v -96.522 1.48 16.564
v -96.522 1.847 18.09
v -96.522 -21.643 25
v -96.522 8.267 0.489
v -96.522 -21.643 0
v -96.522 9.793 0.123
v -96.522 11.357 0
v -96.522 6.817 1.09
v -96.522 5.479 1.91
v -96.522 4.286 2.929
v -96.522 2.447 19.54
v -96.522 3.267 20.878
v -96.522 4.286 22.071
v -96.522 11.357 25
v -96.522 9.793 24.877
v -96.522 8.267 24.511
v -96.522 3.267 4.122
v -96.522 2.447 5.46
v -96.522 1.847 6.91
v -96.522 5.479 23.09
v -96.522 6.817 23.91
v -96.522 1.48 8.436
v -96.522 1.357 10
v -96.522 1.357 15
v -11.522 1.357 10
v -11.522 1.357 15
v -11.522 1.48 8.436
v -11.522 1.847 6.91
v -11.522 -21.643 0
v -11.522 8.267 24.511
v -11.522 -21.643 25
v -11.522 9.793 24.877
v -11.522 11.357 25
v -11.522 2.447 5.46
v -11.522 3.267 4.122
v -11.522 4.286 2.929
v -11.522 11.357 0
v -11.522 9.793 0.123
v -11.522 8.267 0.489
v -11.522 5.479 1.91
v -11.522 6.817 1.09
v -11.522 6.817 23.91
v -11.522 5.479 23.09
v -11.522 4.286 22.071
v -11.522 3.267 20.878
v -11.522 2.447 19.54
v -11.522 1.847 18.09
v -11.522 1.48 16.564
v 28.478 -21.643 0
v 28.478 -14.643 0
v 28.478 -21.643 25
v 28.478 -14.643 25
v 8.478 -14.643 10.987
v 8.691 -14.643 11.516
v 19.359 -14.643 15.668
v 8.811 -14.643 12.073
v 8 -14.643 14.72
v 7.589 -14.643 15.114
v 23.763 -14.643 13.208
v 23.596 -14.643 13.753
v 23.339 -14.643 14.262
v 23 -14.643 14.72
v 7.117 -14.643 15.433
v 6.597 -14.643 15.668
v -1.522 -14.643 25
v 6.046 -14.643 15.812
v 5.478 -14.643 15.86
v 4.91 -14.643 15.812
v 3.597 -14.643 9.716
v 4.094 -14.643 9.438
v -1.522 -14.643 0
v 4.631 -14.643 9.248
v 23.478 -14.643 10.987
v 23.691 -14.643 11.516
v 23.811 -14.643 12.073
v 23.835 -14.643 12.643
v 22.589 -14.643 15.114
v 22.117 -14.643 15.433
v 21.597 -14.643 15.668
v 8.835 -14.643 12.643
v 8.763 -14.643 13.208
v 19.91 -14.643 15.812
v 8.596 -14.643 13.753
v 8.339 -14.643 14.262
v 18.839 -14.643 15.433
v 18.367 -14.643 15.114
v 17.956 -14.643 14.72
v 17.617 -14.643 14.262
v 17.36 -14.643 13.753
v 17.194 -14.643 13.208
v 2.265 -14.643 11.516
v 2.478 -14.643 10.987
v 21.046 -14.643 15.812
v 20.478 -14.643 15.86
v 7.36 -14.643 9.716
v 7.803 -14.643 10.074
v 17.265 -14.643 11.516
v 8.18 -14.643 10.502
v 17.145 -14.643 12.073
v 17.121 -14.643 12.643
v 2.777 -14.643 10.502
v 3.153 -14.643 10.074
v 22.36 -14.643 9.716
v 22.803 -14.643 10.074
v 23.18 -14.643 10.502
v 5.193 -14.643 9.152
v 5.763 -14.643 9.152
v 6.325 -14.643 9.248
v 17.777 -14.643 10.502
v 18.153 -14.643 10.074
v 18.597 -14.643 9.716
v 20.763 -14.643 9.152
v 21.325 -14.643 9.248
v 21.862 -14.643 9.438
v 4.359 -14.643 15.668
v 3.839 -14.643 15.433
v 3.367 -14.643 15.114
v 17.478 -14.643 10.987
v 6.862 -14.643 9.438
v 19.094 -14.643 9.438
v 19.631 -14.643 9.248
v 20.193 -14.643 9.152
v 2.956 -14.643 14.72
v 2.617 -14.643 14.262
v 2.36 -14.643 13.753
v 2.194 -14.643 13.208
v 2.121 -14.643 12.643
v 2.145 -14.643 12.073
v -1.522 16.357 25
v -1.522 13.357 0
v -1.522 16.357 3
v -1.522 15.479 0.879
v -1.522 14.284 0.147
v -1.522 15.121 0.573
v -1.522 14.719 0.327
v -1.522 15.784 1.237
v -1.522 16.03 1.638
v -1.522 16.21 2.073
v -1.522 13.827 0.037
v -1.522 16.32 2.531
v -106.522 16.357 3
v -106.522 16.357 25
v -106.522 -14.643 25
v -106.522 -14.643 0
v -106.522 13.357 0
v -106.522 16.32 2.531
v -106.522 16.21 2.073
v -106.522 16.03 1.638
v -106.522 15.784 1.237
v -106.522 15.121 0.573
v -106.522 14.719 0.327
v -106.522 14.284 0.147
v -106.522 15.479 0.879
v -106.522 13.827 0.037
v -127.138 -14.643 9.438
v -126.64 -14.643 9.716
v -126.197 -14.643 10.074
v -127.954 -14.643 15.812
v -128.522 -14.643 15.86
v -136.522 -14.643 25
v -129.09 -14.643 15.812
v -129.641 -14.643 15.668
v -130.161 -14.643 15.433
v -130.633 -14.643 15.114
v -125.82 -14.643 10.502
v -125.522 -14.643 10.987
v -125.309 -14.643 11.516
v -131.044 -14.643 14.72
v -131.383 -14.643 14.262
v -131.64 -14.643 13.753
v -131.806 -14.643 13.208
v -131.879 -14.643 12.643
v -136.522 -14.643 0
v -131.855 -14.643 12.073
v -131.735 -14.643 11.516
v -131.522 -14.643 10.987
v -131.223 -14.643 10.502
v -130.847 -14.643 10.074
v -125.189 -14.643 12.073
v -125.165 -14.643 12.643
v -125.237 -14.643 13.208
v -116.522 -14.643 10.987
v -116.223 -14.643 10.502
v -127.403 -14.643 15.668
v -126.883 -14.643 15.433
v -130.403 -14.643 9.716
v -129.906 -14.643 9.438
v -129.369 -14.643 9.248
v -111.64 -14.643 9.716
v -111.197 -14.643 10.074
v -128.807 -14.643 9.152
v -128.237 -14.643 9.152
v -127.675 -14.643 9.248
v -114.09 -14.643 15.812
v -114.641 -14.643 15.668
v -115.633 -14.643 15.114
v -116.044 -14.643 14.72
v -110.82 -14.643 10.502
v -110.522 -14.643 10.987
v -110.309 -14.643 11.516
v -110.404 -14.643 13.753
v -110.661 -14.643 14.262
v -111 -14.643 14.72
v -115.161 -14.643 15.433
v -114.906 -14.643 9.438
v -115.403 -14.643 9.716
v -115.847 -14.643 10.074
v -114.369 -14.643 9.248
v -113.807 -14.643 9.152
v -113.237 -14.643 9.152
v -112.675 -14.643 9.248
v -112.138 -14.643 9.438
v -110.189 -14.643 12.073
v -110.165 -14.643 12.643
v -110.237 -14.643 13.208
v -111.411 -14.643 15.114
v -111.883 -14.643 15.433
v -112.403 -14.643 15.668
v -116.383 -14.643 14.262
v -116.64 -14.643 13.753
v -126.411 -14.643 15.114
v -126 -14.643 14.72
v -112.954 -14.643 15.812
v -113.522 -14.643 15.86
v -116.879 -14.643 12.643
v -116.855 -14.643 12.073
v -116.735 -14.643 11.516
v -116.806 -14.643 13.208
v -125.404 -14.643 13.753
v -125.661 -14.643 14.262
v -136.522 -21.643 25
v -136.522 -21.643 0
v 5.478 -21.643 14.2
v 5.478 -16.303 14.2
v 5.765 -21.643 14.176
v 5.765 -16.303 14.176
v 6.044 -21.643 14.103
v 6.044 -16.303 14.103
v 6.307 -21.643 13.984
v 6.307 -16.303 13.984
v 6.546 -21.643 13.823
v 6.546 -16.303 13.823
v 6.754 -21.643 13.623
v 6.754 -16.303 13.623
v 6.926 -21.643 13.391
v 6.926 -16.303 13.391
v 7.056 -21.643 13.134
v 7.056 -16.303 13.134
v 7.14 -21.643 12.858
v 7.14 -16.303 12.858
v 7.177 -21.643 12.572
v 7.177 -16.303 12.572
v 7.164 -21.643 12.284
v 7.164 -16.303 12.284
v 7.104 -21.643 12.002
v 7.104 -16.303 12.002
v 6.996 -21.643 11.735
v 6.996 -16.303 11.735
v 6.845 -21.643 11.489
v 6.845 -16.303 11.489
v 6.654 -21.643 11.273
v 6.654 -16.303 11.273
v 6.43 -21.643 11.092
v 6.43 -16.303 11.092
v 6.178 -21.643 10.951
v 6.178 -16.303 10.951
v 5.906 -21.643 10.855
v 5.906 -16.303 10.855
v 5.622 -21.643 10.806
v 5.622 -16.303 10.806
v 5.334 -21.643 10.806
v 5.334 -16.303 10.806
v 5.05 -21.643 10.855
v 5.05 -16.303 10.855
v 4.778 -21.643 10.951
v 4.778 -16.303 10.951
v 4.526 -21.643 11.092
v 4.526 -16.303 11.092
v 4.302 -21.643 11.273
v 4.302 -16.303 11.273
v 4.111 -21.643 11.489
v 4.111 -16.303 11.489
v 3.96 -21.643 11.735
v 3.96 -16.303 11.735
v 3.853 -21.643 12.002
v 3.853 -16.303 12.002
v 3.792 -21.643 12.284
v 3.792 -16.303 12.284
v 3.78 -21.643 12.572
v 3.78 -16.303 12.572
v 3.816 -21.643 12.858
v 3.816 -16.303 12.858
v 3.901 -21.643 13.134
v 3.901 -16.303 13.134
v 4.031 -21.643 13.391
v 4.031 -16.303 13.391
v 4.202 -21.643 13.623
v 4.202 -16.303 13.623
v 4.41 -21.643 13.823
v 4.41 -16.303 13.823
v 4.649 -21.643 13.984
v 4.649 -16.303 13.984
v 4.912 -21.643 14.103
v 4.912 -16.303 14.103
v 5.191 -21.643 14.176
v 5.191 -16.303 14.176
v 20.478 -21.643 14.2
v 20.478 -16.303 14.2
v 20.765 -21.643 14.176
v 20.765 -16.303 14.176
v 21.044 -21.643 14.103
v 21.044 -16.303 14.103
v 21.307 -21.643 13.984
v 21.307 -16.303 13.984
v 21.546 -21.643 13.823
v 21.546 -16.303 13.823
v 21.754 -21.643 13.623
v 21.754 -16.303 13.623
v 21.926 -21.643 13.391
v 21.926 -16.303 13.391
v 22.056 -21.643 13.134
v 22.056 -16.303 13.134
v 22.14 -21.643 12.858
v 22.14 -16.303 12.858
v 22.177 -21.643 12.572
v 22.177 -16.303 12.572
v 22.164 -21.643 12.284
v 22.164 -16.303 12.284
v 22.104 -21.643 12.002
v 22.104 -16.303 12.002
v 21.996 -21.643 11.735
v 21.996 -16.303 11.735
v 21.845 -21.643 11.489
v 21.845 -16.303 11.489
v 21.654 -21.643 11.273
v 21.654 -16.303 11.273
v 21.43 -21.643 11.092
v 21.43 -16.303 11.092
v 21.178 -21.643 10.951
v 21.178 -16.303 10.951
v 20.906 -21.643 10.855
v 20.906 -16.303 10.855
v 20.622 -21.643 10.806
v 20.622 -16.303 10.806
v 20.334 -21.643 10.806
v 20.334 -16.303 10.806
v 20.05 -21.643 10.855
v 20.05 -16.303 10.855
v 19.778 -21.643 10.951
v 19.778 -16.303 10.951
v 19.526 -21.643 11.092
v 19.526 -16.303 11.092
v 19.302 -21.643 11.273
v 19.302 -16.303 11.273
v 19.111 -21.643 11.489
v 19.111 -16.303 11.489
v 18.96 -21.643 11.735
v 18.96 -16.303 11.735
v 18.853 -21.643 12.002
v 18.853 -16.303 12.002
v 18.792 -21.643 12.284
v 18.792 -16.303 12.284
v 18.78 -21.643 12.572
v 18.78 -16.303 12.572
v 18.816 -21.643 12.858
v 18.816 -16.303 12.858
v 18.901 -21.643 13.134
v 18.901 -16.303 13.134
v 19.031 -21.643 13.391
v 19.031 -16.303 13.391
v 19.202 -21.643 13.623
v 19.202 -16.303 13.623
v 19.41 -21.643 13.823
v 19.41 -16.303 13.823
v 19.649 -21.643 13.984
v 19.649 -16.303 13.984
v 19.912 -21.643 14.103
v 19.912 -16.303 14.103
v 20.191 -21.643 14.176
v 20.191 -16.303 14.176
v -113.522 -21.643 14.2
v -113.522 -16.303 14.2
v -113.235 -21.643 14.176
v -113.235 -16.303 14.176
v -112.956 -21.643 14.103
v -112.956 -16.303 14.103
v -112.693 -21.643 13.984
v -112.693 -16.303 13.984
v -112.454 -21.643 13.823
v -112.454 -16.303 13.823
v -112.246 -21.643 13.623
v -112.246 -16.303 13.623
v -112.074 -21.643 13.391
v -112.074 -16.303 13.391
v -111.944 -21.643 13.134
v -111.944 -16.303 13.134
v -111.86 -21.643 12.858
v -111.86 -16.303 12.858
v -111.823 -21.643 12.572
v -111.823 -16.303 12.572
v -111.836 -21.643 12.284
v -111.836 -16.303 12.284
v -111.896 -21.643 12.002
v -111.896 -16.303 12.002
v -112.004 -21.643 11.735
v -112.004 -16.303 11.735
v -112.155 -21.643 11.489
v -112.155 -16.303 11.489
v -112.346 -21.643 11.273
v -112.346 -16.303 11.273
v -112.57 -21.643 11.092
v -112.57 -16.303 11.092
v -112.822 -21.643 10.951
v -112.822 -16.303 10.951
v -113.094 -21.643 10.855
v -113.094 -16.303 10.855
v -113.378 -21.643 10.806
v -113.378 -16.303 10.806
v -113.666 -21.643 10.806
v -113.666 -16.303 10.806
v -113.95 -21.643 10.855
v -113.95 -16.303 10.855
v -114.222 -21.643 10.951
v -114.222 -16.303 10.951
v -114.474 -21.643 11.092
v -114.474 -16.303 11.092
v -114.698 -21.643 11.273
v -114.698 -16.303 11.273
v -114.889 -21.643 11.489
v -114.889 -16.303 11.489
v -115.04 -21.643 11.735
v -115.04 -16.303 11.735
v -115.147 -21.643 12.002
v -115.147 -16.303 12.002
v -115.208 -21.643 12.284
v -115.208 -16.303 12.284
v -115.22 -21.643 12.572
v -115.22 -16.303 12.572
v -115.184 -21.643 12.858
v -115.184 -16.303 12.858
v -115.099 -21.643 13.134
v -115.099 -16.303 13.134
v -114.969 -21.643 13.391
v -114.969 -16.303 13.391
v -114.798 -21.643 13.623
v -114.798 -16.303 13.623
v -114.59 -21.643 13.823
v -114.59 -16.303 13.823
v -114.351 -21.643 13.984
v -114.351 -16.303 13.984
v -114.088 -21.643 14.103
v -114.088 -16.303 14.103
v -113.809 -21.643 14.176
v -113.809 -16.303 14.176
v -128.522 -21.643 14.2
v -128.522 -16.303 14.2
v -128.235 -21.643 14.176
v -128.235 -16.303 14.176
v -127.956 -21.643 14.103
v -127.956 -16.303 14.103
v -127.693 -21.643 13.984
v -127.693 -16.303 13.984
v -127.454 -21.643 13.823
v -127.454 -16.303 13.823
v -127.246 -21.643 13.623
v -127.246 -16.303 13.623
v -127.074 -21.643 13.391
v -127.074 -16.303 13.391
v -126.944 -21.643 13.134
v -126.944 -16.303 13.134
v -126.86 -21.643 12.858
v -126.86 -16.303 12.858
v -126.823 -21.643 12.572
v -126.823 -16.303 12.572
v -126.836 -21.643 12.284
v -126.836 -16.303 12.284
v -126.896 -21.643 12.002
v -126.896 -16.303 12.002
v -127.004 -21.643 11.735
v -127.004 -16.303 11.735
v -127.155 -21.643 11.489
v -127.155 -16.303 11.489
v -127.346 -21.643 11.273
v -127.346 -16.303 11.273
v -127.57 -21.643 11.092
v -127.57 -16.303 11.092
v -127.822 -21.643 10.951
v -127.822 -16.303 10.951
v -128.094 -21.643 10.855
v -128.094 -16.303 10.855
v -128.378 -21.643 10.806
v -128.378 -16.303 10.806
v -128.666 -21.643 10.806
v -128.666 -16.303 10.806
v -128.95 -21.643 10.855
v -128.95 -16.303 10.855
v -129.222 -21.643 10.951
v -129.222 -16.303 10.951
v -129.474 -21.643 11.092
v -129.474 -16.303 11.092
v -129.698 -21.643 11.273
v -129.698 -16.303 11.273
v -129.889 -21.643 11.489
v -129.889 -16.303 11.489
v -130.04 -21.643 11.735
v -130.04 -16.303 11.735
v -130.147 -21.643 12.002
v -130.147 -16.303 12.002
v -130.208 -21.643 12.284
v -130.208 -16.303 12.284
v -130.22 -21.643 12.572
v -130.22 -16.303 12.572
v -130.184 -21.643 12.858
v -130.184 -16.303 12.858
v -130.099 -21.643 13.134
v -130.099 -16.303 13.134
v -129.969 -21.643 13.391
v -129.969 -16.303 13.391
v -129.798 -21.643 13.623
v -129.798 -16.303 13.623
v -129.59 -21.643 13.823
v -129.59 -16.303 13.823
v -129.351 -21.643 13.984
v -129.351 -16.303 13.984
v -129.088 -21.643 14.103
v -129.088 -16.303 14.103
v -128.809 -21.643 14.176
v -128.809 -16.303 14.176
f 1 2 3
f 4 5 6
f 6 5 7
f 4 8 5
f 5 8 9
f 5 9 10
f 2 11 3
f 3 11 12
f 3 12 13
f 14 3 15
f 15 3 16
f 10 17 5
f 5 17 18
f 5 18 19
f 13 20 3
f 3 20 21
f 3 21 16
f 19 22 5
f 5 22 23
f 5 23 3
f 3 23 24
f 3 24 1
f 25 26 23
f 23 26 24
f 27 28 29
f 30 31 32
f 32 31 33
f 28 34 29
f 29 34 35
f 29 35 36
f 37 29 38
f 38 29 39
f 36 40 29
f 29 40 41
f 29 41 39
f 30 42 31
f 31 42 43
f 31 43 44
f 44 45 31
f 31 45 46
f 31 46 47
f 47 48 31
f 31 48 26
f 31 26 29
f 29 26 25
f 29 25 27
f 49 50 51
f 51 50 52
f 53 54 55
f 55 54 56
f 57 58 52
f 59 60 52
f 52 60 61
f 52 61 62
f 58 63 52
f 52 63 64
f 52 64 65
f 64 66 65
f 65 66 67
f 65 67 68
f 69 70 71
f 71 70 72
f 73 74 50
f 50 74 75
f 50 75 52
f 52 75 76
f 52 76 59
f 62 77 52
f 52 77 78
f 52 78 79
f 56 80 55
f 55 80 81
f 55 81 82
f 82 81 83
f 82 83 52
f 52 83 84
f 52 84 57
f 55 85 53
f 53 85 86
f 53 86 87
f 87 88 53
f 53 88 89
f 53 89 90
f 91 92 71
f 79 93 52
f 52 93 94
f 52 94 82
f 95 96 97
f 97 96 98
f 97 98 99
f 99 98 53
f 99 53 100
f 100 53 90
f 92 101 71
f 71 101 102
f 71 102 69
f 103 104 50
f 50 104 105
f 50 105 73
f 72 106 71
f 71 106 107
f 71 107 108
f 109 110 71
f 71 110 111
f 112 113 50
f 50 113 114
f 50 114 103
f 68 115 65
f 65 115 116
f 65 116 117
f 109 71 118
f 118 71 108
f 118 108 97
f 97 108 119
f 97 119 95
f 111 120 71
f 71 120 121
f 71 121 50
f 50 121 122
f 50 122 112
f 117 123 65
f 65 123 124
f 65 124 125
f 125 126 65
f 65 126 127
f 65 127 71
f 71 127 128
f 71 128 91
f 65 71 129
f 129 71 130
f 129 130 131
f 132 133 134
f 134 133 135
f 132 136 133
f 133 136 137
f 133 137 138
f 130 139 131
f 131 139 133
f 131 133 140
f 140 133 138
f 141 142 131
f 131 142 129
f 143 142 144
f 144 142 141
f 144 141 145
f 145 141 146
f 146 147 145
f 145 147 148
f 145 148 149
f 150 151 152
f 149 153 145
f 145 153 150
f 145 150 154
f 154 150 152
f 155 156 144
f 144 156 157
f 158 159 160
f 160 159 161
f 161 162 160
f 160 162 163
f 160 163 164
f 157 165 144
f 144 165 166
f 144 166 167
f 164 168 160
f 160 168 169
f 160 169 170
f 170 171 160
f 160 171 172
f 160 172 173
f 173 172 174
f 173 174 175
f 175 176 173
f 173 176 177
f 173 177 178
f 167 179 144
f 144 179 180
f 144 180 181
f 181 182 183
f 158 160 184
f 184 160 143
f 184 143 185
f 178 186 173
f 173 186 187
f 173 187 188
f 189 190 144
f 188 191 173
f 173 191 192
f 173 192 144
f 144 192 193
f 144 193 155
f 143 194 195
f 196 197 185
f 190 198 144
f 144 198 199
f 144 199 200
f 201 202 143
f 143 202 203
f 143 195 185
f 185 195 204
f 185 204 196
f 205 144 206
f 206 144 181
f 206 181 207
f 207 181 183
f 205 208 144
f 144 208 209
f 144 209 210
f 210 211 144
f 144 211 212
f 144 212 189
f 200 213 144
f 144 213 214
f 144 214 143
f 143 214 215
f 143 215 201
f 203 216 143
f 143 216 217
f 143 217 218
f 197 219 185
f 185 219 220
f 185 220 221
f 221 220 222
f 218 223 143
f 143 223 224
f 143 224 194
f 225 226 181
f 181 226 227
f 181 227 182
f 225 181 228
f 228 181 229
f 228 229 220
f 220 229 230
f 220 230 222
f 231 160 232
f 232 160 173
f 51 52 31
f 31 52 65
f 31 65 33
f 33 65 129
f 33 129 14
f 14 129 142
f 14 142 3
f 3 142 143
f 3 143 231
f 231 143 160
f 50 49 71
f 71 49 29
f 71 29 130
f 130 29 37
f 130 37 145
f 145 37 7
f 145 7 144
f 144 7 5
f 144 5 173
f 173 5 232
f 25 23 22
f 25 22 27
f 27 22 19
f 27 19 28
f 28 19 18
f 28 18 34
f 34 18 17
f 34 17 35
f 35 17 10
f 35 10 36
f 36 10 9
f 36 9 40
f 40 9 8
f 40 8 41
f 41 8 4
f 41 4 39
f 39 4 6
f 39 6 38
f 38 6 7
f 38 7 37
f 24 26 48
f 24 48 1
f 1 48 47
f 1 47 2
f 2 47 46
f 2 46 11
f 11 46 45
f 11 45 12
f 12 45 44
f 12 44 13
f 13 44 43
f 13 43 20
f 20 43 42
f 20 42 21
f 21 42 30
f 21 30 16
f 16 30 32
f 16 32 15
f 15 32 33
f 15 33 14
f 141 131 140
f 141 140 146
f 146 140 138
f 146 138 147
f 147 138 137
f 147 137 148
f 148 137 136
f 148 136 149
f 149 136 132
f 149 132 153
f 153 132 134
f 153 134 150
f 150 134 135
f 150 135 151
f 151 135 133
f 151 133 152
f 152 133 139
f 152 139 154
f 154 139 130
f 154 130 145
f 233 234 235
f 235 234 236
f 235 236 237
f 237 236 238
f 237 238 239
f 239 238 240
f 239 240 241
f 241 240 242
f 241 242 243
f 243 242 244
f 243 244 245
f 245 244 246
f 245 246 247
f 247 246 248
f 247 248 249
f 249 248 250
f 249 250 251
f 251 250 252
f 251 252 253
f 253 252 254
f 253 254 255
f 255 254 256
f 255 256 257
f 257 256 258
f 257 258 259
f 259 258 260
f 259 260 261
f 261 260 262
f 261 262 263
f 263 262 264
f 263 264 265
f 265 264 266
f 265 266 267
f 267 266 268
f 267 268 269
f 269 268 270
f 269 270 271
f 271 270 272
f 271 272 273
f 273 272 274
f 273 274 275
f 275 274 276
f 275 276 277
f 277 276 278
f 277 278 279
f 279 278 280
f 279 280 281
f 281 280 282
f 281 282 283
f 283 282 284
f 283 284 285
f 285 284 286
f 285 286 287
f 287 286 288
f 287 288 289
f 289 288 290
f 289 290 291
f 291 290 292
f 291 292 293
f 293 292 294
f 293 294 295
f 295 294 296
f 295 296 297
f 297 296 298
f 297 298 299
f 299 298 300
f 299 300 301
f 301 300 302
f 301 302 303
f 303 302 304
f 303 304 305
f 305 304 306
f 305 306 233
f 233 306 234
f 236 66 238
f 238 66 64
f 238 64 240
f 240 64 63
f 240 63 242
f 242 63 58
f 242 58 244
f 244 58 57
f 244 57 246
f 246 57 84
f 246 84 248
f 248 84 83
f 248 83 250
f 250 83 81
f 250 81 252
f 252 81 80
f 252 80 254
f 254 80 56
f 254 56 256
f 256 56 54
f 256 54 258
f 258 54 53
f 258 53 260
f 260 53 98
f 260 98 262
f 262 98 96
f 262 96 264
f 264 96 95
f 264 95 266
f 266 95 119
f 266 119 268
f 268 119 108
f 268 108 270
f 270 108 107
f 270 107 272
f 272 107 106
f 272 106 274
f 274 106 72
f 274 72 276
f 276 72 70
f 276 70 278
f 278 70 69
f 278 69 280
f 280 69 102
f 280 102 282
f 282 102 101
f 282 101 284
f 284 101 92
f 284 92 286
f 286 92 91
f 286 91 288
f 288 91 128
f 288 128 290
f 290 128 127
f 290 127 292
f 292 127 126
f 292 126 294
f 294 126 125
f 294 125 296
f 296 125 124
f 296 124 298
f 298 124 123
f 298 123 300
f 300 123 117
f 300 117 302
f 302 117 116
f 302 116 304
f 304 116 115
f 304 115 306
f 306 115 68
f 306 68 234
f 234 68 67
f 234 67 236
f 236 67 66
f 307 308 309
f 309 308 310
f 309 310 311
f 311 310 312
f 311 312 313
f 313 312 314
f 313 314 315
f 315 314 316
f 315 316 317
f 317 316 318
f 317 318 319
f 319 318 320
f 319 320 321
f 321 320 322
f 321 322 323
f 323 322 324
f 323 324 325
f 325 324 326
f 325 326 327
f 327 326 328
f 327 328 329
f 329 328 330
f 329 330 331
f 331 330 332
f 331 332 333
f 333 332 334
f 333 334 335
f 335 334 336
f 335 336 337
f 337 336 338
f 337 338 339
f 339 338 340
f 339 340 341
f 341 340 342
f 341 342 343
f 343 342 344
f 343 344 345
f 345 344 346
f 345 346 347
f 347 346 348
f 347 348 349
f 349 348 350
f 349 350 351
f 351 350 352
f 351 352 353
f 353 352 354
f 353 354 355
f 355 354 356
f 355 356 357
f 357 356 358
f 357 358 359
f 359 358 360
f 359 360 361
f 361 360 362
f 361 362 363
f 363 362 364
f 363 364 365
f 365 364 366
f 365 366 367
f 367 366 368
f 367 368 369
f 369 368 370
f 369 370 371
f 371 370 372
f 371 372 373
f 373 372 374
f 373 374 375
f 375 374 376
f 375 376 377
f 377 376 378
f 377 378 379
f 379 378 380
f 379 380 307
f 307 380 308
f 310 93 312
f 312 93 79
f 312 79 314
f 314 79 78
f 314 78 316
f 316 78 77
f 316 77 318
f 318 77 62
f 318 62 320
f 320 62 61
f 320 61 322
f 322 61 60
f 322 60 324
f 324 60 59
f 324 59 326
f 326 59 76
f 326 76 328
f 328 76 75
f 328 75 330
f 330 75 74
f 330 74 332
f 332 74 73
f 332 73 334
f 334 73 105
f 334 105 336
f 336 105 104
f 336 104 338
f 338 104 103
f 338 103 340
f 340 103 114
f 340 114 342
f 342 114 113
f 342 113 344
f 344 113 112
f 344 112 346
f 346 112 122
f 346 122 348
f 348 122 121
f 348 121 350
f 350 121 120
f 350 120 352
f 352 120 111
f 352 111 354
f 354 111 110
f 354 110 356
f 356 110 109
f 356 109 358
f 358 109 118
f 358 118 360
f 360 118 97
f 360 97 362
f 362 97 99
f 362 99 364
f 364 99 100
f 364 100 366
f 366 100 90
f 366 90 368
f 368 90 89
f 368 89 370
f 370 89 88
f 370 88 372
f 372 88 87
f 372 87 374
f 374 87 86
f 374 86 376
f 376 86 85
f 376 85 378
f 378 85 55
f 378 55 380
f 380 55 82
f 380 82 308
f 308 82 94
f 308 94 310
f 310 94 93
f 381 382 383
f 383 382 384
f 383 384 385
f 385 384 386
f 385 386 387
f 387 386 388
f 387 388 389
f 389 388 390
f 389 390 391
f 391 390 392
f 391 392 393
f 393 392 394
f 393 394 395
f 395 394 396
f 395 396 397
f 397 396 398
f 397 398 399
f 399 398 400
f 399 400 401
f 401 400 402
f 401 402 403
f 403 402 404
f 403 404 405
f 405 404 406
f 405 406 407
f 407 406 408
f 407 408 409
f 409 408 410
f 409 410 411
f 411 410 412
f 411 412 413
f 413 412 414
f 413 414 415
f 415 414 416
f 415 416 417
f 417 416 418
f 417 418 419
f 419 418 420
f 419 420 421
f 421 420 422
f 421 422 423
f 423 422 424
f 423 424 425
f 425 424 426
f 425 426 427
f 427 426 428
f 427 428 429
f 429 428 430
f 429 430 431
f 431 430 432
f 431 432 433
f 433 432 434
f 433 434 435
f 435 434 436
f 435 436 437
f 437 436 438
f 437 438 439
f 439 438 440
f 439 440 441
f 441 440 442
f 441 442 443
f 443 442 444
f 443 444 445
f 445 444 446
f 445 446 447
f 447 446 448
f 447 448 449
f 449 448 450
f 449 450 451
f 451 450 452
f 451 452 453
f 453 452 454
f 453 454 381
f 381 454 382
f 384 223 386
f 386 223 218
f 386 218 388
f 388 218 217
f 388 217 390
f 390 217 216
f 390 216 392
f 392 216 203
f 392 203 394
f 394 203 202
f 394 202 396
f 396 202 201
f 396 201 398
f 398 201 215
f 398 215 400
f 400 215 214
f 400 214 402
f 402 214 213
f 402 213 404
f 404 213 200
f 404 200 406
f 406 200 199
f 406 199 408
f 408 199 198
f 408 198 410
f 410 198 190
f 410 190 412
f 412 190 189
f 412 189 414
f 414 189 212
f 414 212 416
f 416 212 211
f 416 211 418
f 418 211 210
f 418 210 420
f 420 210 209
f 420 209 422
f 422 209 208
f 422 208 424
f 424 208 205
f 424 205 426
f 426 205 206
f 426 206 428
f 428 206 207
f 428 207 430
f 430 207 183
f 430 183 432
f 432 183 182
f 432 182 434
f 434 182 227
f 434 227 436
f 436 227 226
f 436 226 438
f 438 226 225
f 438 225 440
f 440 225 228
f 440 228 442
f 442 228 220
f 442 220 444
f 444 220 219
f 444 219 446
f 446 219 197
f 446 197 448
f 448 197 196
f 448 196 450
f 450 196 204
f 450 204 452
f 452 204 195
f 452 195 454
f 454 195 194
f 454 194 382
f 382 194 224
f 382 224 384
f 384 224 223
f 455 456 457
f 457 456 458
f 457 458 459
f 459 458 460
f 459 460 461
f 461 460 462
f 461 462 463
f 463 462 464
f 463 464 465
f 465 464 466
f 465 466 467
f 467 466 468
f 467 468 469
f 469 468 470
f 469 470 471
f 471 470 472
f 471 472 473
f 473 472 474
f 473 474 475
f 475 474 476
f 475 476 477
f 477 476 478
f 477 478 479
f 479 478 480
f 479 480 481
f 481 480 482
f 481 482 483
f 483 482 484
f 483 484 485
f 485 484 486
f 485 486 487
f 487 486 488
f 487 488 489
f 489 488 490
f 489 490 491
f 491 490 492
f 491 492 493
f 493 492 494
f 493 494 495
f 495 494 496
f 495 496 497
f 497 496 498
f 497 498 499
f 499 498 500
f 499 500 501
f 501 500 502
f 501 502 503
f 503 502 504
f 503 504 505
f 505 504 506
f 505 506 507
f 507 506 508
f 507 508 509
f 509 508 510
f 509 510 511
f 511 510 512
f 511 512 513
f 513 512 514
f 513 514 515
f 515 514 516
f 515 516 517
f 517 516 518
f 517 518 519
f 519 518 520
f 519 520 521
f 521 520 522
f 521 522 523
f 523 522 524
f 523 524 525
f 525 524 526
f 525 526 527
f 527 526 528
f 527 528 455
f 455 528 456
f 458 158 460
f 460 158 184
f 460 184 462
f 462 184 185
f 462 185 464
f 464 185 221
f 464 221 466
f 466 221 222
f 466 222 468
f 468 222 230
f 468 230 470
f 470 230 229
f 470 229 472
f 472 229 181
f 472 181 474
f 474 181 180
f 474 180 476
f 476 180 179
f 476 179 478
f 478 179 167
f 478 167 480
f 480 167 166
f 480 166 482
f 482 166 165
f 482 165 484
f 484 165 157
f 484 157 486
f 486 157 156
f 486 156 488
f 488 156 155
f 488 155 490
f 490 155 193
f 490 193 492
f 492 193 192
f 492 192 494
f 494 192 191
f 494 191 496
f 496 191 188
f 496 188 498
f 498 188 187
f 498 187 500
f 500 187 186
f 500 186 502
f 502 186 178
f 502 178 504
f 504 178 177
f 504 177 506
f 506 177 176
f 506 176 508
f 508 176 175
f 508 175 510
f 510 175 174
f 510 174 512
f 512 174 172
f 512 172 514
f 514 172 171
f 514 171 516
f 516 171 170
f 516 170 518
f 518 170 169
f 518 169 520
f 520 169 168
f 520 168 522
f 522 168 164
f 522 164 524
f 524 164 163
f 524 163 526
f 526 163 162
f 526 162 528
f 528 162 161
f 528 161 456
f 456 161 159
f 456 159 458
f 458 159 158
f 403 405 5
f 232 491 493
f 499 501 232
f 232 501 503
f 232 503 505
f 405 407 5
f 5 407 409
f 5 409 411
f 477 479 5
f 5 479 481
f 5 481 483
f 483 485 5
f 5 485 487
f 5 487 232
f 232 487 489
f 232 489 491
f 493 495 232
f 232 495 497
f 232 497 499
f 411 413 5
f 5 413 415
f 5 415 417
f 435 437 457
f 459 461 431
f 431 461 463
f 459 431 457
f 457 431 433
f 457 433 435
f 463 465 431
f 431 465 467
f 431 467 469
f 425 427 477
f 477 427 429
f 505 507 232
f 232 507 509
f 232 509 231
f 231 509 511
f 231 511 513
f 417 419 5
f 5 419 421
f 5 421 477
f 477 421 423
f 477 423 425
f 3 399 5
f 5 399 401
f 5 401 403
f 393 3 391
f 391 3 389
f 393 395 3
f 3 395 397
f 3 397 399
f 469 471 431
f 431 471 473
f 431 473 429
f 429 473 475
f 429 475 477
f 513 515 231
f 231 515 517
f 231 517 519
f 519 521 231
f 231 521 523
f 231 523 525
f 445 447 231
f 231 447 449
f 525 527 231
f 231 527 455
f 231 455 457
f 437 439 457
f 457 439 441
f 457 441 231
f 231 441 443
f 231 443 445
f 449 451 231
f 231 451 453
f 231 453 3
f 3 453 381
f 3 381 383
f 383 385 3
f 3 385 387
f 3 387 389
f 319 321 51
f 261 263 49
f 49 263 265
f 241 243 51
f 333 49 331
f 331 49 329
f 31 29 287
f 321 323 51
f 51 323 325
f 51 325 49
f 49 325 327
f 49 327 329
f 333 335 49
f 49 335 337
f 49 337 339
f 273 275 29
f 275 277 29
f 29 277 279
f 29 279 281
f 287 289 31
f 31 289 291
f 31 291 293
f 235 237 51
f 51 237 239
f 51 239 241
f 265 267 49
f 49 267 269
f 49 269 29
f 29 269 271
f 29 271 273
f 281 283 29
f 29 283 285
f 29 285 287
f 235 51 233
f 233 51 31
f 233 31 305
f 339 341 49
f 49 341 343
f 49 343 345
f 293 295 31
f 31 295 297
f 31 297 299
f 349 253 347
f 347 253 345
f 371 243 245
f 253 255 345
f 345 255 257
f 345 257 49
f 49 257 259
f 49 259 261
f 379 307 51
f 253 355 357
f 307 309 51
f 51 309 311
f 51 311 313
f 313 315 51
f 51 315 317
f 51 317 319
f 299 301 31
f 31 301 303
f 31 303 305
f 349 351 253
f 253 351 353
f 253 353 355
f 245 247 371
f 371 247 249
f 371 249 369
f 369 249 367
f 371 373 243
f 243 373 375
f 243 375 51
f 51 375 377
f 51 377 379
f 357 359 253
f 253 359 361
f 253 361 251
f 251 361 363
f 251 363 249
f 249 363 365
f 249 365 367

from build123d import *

# Parameters (mm, degrees)
SALIENTE_EXTRUIR1_DEPTH                              = 25
REDONDEO1_R                                          = 10
REDONDEO2_R                                          = 3
CROQUIS2_R                                           = 1.5
CORTAR_EXTRUIR1_DEPTH                                = 9
REFRENTADO_PARA_TORNILLO_TAP_N_CON_CABEZ_D           = 3.4
REFRENTADO_PARA_TORNILLO_TAP_N_CON_CABEZ_CSINK_D     = 6.72
REFRENTADO_PARA_TORNILLO_TAP_N_CON_CABEZ_CSINK_ANGLE = 90
CROQUIS5_W                                           = 40
CROQUIS5_H                                           = 2
CORTAR_EXTRUIR2_DEPTH                                = 25


with BuildPart() as part:
    # Croquis1 → Saliente-Extruir1 (new body)
    with BuildSketch(Plane.XY):
        Polygon((-96.521895292, -23.642699491), (-136.521895292, -23.642699491), (-136.521895292, -14.642699491), (-106.521895292, -14.642699491), (-106.521895292, 16.357300509), (-1.521895292, 16.357300509), (-1.521895292, -14.642699491), (28.478104708, -14.642699491), (28.478104708, -23.642699491), (-11.521895292, -23.642699491), (-11.521895292, 1.357300509), (-96.521895292, 1.357300509), align=None)
    extrude(amount=SALIENTE_EXTRUIR1_DEPTH)

    # Redondeo1
    redondeo1_edges = [part.edges().sort_by_distance(p)[0] for p in [
        (-54.021895292, 1.357300509, 0),
        (-54.021895292, 1.357300509, 25),
    ]]
    fillet(redondeo1_edges, radius=REDONDEO1_R)

    # Redondeo2
    redondeo2_edges = [part.edges().sort_by_distance(p)[0] for p in [
        (-54.021895292, 16.357300509, 0),
    ]]
    fillet(redondeo2_edges, radius=REDONDEO2_R)

    # Croquis2 → Cortar-Extruir1 (cut)
    with BuildSketch(Plane(origin=(0, -14.642699491, 0), x_dir=(1, 0, 0), z_dir=(0, 1, 0))):
        with Locations((-113.521895292, -12.5)):
            Circle(CROQUIS2_R)
        with Locations((-128.521895292, -12.5)):
            Circle(CROQUIS2_R)
        with Locations((20.478104708, -12.5)):
            Circle(CROQUIS2_R)
        with Locations((5.478104708, -12.5)):
            Circle(CROQUIS2_R)
    extrude(amount=-CORTAR_EXTRUIR1_DEPTH, mode=Mode.SUBTRACT)

    # Refrentado para tornillo tapón con cabeza plana de clavija de M31 (through all)
    with Locations(Plane(origin=(0, -14.642699491, 0), x_dir=(1, 0, 0), z_dir=(0, 1, 0))):
        with Locations((-128.521895292, -12.5), (-113.521895292, -12.5), (20.478104708, -12.5), (5.478104708, -12.5)):
            CounterSinkHole(REFRENTADO_PARA_TORNILLO_TAP_N_CON_CABEZ_D / 2, REFRENTADO_PARA_TORNILLO_TAP_N_CON_CABEZ_CSINK_D / 2, counter_sink_angle=REFRENTADO_PARA_TORNILLO_TAP_N_CON_CABEZ_CSINK_ANGLE)

    # Croquis5 → Cortar-Extruir2 (cut)
    with BuildSketch(Plane.XY.offset(25)):
        with Locations((-116.521895292, -22.642699491)):
            Rectangle(CROQUIS5_W, CROQUIS5_H)
        with Locations((8.478104708, -22.642699491)):
            Rectangle(CROQUIS5_W, CROQUIS5_H)
    extrude(amount=-CORTAR_EXTRUIR2_DEPTH, mode=Mode.SUBTRACT)


solid = part.part
